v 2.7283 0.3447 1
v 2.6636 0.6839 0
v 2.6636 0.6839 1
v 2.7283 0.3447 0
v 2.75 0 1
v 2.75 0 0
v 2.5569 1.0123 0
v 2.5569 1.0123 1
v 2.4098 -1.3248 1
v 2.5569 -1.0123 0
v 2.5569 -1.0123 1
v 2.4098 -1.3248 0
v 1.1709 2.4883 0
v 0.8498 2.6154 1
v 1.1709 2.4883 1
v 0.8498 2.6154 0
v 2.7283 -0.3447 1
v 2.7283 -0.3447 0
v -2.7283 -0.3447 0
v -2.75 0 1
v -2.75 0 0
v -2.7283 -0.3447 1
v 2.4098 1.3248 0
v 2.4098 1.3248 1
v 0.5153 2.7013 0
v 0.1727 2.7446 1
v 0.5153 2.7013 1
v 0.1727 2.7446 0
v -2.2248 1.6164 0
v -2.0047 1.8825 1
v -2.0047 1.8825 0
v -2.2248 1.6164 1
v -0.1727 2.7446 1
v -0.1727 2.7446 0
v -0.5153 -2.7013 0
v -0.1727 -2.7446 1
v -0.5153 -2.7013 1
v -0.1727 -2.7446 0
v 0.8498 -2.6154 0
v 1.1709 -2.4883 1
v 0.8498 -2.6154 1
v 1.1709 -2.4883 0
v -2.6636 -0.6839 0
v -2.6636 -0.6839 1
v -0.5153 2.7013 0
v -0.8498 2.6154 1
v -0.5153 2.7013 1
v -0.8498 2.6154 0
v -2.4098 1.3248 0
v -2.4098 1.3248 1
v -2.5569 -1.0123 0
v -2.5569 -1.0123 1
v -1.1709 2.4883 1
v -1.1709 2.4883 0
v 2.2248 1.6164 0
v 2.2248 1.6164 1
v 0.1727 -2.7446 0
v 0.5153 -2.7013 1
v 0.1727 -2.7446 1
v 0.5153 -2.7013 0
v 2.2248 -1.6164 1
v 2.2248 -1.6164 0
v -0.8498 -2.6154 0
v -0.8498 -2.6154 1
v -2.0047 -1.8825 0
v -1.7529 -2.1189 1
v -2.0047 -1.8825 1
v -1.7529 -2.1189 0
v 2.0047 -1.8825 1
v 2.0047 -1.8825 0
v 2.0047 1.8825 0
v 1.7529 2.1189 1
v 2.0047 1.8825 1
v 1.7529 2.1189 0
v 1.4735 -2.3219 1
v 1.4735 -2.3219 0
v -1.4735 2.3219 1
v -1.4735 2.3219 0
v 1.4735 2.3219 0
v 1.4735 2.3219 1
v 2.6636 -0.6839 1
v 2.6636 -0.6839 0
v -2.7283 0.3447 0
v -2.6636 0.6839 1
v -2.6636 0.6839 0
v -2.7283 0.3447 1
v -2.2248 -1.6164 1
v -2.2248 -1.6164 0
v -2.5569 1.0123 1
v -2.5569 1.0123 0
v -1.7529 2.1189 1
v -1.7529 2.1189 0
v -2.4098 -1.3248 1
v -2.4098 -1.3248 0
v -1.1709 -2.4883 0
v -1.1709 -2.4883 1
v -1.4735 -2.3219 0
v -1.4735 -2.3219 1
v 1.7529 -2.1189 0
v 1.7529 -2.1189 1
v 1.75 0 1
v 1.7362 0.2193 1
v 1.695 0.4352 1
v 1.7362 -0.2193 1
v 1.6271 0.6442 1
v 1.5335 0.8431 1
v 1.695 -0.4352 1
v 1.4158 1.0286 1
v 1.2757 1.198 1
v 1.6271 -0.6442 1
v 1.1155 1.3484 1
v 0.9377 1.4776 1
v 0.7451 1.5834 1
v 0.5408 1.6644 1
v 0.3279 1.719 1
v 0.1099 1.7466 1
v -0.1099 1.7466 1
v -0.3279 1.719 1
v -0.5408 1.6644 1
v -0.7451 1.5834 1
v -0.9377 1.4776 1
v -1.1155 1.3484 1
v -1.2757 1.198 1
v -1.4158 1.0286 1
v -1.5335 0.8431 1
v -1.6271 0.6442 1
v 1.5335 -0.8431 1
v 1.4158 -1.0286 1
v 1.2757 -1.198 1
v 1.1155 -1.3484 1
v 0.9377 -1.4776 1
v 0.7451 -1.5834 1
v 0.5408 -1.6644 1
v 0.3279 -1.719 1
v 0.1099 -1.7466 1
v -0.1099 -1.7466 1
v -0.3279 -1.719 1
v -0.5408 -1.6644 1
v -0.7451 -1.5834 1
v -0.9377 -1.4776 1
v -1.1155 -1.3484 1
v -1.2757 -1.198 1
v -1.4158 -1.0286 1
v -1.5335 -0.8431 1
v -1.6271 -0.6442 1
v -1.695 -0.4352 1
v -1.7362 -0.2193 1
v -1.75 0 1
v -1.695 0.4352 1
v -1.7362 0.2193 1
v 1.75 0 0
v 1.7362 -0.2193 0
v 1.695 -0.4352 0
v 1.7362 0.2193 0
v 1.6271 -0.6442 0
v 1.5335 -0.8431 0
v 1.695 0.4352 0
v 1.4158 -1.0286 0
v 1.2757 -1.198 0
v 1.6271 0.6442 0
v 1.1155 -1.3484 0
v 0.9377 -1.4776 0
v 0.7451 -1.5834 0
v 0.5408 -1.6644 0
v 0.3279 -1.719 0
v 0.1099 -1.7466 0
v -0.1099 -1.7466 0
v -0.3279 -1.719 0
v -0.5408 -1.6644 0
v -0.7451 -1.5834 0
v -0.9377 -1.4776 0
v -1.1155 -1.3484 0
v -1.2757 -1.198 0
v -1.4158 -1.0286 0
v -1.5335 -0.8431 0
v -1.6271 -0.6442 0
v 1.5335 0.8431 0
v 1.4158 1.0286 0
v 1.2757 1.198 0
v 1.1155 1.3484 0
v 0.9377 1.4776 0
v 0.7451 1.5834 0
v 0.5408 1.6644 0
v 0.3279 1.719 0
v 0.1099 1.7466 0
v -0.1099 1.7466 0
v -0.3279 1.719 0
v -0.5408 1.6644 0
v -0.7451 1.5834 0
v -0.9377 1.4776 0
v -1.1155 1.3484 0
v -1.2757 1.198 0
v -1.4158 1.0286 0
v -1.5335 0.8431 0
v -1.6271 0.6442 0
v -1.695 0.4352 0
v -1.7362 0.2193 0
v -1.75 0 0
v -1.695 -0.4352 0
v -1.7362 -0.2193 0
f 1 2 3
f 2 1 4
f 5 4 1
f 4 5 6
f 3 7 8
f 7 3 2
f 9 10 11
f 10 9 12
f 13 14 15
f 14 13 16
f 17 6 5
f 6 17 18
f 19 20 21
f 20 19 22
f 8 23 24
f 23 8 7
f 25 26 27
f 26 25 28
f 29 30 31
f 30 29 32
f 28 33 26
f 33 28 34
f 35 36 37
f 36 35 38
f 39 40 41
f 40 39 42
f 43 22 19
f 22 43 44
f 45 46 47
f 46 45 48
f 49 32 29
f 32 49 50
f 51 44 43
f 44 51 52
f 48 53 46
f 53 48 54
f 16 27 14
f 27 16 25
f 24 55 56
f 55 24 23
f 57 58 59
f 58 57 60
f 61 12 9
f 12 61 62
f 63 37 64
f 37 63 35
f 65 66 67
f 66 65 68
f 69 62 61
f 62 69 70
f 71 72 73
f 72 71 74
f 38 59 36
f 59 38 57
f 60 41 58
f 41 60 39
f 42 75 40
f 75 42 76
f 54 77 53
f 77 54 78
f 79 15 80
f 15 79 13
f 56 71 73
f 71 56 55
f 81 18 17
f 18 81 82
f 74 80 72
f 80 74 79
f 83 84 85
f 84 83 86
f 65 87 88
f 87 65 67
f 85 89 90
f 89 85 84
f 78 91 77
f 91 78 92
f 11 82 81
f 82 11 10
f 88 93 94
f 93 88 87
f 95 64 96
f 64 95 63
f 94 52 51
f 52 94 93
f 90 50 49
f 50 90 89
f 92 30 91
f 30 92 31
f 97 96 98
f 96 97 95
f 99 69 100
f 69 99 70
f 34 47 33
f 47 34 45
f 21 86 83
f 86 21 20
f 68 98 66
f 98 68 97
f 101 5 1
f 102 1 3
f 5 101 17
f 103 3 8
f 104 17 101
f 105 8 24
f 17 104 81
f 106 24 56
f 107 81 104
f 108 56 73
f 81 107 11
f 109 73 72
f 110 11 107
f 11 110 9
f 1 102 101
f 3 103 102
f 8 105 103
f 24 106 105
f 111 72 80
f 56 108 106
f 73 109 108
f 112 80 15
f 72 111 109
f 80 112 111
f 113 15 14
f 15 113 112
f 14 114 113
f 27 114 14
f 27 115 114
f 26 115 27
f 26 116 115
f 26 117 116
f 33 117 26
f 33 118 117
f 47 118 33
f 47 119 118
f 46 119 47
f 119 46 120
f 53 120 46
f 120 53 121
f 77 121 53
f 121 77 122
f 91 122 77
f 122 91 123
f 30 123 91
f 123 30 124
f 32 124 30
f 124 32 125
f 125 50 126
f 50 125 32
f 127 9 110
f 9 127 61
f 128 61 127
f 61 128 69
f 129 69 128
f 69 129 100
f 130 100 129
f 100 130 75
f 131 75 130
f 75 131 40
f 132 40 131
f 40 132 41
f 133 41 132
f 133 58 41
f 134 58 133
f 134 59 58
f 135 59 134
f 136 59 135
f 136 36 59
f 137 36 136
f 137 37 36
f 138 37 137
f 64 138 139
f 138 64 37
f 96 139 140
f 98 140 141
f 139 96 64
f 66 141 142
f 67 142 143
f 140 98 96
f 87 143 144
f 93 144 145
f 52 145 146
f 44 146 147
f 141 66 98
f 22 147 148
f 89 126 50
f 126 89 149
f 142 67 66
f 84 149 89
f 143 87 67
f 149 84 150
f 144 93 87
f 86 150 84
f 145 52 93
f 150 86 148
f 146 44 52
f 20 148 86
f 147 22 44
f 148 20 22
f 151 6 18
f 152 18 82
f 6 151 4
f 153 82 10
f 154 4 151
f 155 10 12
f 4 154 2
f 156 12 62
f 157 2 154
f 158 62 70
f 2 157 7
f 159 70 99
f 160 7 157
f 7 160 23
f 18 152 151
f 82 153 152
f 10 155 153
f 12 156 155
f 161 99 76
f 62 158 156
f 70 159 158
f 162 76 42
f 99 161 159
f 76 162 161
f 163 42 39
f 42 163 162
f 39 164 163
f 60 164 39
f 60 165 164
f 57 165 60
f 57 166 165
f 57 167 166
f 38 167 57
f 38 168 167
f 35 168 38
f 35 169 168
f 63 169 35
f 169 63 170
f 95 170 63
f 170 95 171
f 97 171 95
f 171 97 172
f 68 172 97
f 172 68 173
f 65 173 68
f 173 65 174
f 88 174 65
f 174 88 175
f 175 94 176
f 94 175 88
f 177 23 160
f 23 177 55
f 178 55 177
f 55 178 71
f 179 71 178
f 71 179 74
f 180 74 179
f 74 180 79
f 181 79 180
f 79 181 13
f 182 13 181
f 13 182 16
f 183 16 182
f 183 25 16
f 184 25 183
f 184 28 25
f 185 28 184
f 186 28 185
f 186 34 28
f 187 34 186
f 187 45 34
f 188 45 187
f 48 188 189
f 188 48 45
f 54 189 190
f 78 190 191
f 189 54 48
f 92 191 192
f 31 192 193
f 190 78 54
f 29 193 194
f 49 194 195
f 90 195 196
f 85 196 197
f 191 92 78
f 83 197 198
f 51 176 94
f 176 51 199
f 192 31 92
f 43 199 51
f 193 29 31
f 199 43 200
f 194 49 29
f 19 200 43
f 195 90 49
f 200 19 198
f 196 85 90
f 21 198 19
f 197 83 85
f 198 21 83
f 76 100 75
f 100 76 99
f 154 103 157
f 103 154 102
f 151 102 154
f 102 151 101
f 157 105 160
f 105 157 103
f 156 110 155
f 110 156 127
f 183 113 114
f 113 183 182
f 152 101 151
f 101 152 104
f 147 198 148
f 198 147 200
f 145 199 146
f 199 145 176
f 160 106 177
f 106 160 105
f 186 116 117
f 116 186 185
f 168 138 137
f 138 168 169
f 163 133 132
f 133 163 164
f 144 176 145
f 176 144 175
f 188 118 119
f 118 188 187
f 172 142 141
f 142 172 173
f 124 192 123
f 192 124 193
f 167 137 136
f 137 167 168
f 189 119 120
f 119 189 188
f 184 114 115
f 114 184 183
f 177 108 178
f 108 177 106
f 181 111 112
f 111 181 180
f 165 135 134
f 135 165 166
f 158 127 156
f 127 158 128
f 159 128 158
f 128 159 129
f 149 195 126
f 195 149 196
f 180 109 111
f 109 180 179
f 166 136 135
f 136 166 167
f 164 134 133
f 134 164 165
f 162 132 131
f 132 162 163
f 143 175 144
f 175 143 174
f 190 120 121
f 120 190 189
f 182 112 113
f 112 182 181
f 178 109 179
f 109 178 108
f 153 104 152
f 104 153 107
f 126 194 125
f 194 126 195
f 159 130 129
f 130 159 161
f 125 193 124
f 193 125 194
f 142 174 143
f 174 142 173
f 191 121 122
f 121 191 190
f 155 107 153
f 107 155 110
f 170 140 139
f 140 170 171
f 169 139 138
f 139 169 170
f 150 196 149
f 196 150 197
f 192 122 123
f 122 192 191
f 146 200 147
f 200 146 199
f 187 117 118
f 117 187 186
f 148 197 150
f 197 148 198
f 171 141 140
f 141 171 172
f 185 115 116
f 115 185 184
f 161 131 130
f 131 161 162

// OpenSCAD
$fn = 50;

difference(){
     cylinder(1, d=5.5, true);
     translate([0,0,-1]){
          cylinder(3, d=3.5, true);
     }
}
